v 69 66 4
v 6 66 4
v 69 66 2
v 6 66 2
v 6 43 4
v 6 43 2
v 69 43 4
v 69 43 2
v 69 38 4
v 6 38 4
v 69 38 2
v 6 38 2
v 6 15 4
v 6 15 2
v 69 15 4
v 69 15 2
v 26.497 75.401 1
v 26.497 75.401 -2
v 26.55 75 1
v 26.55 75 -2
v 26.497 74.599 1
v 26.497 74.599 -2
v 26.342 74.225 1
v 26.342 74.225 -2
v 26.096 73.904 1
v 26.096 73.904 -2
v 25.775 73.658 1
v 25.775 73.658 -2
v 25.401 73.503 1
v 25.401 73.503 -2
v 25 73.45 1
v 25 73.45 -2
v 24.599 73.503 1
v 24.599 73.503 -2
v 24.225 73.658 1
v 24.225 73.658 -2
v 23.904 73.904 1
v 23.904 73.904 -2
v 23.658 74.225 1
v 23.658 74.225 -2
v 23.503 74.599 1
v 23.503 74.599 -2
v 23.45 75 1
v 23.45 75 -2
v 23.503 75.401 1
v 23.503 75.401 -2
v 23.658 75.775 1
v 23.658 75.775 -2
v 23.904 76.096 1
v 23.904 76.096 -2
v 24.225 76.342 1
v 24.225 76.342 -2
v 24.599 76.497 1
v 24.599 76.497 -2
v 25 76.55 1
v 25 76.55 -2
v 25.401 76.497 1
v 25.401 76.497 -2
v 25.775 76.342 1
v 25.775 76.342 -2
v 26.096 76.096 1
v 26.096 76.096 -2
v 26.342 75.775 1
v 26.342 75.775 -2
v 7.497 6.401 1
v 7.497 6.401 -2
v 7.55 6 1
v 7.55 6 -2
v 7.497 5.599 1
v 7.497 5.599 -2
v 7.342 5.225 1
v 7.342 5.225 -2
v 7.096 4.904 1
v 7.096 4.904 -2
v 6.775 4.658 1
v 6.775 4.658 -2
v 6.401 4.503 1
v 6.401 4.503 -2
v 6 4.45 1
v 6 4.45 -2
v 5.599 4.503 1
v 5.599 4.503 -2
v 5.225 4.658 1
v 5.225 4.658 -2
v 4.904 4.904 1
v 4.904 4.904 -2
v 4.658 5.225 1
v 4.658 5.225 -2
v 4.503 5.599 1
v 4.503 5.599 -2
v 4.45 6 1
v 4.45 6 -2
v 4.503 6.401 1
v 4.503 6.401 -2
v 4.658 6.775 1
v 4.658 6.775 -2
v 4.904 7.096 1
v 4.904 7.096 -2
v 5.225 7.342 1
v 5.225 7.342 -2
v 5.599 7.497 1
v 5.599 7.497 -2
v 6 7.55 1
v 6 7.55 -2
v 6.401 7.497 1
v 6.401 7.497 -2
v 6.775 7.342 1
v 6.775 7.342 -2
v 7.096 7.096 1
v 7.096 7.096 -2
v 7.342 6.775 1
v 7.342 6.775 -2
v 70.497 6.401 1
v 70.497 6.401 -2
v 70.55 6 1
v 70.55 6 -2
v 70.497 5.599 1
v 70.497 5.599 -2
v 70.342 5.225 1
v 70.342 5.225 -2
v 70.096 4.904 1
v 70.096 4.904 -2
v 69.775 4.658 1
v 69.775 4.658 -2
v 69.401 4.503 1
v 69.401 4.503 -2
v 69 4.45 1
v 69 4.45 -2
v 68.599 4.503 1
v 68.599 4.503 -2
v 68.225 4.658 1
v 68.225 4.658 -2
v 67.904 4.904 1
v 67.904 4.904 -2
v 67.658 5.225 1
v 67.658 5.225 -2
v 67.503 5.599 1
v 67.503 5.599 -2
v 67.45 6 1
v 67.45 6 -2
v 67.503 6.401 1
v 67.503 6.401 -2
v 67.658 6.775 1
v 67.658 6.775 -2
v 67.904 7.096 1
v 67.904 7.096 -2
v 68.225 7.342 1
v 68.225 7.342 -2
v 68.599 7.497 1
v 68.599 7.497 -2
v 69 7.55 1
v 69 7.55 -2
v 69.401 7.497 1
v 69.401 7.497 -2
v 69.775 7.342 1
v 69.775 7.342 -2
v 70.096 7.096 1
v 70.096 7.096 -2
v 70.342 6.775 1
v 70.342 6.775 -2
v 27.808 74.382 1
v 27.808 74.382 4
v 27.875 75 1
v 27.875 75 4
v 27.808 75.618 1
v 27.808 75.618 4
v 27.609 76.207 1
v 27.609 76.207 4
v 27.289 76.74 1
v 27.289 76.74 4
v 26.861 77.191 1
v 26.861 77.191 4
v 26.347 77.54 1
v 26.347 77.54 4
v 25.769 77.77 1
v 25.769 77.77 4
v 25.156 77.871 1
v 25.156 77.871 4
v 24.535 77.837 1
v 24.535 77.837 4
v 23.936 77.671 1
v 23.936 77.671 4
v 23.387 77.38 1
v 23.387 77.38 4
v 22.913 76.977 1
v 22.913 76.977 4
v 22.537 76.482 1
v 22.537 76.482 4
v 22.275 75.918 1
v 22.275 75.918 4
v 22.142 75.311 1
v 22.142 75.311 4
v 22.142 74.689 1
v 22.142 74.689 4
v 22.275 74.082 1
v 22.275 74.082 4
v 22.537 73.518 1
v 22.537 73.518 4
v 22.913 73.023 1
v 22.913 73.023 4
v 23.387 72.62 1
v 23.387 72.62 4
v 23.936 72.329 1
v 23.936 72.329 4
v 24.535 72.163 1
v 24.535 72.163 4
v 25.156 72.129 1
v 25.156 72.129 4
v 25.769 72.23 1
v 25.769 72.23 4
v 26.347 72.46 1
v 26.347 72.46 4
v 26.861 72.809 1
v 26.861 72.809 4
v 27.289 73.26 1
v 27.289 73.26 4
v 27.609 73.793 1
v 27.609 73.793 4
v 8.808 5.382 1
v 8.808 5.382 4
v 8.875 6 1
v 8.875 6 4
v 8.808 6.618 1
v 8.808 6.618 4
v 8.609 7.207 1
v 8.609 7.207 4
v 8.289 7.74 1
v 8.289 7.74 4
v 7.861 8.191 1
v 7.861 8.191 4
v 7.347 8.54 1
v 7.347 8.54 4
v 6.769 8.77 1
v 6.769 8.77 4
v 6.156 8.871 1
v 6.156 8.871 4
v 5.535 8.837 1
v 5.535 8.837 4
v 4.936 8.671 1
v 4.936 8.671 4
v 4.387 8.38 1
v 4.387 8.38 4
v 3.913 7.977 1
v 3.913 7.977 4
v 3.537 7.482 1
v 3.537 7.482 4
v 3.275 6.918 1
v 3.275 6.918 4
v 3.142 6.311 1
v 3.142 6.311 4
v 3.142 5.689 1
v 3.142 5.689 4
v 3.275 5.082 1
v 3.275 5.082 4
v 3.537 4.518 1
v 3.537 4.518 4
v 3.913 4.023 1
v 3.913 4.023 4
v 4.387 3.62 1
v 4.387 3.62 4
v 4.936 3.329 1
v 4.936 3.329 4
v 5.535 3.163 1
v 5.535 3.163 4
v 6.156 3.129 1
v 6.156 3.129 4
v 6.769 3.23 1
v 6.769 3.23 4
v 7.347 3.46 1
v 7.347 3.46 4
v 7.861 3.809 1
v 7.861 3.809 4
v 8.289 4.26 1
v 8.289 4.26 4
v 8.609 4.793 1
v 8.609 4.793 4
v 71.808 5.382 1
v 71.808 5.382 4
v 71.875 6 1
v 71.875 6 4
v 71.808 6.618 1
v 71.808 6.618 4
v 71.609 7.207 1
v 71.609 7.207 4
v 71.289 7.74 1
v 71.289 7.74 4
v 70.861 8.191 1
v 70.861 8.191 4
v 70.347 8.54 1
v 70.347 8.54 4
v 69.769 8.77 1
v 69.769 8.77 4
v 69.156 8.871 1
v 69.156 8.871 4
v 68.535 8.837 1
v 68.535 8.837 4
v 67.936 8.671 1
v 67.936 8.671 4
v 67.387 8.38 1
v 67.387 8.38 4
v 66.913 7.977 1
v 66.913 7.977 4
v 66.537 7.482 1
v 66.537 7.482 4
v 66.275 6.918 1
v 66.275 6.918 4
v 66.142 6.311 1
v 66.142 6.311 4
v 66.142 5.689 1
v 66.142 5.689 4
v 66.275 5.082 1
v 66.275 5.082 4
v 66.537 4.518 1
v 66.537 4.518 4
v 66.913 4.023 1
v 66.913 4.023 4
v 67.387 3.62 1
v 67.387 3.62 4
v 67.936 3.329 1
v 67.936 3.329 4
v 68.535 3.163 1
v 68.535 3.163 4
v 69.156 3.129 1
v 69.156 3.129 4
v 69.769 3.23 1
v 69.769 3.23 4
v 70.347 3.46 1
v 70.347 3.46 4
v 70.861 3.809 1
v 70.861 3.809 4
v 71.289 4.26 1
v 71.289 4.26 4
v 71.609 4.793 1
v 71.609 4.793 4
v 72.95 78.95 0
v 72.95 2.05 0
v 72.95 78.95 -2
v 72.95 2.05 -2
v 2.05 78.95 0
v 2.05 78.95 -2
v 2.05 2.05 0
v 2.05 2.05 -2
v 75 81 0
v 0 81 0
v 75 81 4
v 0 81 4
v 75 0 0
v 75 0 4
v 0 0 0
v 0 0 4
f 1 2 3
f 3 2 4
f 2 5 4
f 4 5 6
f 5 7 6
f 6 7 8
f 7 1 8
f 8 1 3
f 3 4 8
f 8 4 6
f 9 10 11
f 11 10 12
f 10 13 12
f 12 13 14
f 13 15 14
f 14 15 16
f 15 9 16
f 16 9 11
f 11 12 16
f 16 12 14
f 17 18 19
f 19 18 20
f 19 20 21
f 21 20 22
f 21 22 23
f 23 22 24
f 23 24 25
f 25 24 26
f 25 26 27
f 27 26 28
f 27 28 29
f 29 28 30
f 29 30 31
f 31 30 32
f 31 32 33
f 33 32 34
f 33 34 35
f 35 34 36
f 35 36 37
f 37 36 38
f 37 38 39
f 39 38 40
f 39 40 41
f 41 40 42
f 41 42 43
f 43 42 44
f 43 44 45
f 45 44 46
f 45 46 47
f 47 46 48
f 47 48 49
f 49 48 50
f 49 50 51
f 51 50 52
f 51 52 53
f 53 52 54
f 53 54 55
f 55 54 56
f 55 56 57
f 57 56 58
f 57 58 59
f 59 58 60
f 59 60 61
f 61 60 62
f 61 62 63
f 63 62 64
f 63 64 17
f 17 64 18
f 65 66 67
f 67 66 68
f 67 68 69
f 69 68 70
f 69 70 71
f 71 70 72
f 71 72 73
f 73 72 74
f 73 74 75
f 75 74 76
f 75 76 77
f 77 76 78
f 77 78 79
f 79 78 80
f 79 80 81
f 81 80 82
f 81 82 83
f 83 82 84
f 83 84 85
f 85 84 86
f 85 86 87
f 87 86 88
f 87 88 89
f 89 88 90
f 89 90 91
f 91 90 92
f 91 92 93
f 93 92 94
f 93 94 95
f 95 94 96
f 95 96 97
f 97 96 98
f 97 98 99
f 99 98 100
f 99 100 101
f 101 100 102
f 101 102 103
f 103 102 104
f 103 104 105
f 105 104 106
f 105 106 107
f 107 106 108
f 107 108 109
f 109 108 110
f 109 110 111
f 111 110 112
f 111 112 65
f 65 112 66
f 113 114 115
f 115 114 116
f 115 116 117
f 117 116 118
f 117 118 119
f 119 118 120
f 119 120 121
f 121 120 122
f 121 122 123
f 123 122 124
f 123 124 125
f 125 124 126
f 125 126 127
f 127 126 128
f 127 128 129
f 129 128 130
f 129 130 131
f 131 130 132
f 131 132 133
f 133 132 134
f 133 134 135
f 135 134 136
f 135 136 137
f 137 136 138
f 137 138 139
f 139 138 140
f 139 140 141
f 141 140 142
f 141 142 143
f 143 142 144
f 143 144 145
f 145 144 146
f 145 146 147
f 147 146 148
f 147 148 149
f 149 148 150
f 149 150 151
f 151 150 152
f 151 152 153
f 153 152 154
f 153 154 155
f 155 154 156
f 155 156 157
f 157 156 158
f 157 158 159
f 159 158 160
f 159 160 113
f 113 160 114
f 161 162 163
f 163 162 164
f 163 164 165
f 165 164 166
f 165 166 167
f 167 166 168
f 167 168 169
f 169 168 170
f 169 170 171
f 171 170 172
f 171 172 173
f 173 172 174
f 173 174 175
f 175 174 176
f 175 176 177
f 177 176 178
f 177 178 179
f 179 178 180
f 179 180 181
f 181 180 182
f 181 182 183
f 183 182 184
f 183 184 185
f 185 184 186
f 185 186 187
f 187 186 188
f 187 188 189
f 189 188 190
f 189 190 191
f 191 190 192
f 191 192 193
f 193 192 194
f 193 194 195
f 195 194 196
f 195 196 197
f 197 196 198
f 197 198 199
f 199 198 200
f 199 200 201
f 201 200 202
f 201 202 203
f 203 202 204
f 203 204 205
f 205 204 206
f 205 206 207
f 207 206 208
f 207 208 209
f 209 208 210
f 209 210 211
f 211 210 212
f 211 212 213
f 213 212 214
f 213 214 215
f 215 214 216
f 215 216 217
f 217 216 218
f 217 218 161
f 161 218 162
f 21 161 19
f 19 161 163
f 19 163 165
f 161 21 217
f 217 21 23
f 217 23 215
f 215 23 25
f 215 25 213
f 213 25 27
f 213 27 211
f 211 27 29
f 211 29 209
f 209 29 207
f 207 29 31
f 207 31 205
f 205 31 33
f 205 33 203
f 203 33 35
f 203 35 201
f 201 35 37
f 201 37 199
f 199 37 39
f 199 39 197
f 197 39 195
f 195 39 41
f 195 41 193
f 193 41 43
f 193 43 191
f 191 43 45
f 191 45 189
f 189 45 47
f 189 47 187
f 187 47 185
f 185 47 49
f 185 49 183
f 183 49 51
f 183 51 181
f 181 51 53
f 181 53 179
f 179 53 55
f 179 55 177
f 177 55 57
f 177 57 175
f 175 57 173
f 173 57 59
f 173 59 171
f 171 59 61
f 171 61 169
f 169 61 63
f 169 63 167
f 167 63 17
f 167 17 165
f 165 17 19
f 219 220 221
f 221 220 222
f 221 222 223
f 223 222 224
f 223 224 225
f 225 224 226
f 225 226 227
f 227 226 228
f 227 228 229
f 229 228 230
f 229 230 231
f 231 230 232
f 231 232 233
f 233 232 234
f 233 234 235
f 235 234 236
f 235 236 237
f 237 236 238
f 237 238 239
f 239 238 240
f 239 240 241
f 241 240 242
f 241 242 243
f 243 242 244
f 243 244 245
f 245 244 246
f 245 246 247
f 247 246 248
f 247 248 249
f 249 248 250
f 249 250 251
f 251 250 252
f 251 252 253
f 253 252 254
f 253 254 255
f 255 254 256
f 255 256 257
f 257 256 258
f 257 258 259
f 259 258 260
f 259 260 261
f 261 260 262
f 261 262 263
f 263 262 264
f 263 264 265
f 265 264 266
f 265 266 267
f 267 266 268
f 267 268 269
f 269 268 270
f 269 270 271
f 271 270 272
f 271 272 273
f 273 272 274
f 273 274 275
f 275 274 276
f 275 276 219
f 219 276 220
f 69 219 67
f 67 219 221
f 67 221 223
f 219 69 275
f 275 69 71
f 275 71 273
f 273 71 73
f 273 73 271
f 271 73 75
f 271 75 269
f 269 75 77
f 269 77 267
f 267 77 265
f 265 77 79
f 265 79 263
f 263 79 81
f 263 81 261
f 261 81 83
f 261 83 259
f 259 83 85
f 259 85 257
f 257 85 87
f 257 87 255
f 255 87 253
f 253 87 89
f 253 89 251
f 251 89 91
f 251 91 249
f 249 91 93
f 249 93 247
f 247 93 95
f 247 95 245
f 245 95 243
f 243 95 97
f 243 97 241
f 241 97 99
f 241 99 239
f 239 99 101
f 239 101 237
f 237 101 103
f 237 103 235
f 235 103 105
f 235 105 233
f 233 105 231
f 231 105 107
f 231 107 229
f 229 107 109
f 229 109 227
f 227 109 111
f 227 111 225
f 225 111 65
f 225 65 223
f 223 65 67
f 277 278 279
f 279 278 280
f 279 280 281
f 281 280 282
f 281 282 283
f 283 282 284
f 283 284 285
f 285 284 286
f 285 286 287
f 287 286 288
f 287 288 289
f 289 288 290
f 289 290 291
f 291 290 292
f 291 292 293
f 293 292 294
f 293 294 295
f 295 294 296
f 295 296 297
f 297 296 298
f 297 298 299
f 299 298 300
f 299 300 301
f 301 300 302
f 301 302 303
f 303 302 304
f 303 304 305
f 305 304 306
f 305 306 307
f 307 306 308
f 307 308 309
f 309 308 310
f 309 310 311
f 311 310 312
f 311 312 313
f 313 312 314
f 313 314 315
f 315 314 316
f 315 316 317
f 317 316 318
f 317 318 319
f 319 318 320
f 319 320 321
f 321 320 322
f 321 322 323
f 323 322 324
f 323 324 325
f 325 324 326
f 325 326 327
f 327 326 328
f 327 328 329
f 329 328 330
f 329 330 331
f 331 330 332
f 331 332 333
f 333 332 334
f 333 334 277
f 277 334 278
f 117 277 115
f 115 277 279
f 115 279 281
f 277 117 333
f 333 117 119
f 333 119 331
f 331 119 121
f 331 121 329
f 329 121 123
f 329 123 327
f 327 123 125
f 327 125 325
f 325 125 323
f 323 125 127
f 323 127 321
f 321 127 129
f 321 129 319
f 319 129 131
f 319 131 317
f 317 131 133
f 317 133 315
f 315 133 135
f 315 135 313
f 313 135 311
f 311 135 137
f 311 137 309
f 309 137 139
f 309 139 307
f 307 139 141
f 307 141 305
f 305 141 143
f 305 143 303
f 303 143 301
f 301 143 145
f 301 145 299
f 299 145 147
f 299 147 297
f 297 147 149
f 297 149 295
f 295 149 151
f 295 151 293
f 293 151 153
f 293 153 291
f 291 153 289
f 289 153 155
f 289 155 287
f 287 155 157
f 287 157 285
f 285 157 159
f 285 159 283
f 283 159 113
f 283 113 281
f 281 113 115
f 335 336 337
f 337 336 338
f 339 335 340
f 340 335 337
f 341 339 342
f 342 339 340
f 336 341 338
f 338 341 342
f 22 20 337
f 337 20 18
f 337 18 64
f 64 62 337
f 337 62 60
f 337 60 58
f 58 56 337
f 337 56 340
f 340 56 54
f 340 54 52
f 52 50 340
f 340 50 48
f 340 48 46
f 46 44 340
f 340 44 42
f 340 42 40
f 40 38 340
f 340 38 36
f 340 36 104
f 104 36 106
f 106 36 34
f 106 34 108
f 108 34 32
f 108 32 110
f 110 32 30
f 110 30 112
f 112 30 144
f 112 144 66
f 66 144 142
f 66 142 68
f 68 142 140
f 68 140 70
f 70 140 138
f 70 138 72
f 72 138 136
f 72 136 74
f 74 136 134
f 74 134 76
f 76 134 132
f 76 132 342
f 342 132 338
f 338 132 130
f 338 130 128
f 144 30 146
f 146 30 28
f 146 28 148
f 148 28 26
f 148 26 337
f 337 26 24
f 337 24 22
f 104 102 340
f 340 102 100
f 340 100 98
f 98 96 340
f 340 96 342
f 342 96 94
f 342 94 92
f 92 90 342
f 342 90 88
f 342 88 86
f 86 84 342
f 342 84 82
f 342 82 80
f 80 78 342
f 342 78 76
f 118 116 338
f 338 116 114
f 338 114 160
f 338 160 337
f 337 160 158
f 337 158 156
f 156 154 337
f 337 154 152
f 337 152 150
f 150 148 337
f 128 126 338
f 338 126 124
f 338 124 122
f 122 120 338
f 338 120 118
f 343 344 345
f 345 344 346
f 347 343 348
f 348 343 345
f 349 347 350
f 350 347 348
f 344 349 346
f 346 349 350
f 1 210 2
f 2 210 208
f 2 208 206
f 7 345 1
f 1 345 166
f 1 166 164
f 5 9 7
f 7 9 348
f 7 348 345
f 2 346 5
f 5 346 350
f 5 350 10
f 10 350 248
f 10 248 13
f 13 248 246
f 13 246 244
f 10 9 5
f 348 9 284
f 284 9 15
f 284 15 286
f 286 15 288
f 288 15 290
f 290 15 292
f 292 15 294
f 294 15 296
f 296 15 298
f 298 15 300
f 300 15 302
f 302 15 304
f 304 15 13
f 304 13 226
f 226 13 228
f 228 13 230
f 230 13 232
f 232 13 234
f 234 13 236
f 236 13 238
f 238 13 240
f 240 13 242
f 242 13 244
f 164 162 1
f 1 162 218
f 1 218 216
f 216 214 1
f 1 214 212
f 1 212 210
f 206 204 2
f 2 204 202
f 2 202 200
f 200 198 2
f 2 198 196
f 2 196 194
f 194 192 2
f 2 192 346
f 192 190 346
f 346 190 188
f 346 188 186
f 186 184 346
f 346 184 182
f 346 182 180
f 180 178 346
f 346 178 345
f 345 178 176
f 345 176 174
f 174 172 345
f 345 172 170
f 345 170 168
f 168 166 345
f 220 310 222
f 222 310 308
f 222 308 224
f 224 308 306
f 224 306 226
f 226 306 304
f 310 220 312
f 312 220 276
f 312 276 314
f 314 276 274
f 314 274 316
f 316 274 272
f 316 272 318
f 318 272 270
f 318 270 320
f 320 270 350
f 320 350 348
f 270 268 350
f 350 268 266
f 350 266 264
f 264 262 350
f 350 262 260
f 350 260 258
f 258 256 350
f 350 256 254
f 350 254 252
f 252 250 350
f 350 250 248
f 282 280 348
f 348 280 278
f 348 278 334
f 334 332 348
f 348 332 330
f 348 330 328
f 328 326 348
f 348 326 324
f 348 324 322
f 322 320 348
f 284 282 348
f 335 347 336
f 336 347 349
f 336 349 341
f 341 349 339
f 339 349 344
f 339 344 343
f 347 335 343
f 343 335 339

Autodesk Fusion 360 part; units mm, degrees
sketch "Sketch1" plane through (0, 0, 0) normal (0, 0, 1) x (1, 0, 0)
  line L0 (0, 0) -> (75, 0)
  line L1 (75, 0) -> (75, 81)
  line L2 (75, 81) -> (0, 81)
  line L3 (0, 81) -> (0, 0)
  dimension "d1" = 81
  dimension "d2" = 75
extrude "Extrude1" add sketch "Sketch1" along normal blind 4
sketch "Sketch2" plane through (0, 0, 0) normal (0, 0, -1) x (1, 0, 0)
  line L0 (0, 0) -> (0, -81)
  line L1 (0, -81) -> (75, -81)
  line L2 (75, -81) -> (75, 0)
  line L3 (75, 0) -> (0, 0)
  line L4 (72.95, -78.95) -> (2.05, -78.95)
  line L5 (2.05, -78.95) -> (2.05, -2.05)
  line L6 (2.05, -2.05) -> (72.95, -2.05)
  line L7 (72.95, -2.05) -> (72.95, -78.95)
  dimension "d6" = 2.05
  dimension "d7" = 2.05
  dimension "d8" = 2.05
  dimension "d9" = 2.05
extrude "Extrude2" add sketch "Sketch2" along normal blind 2 contours L4 L5 L6 L7
sketch "Sketch3" plane through (0, 0, 4) normal (0, 0, 1) x (-1, 0, 0)
  line L0 (0, -81) -> (0, 0)
  line L1 (0, 0) -> (-75, 0)
  line L2 (-75, 0) -> (-75, -81)
  line L3 (-75, -81) -> (0, -81)
  circle A0 centre (-6, -6) radius 2.875
  circle A1 centre (-69, -6) radius 2.875
  circle A2 centre (-25, -75) radius 2.875
  dimension "d12" = 25
  dimension "d13" = 5.75
  dimension "d14" = 6
  dimension "d15" = 6
  dimension "d16" = 6
  dimension "d17" = 6
  dimension "d18" = 6
  dimension "d19" = 5.75
  dimension "d20" = 5.75
extrude "Extrude3" cut sketch "Sketch3" against normal blind 3 contours A0 | A1 | A2
sketch "Sketch4" plane through (0, 0, 4) normal (0, 0, 1) x (-1, 0, 0)
  circle A0 centre (-25, -75) radius 2.875
  circle A1 centre (-6, -6) radius 2.875
  circle A2 centre (-69, -6) radius 2.875
  line L0 (0, -81) -> (0, 0)
  line L1 (0, 0) -> (-75, 0)
  line L2 (-75, 0) -> (-75, -81)
  line L3 (-75, -81) -> (0, -81)
  circle A3 centre (-6, -6) radius 1.55
  circle A4 centre (-69, -6) radius 1.55
  circle A5 centre (-25, -75) radius 1.55
  dimension "d23" = 3.1
  dimension "d24" = 3.1
  dimension "d25" = 3.1
extrude "Extrude4" cut sketch "Sketch4" against normal blind 16 contours A3 | A4 | A5
sketch "Sketch5" plane through (0, 0, 4) normal (0, 0, 1) x (-1, 0, 0)
  circle A0 centre (-25, -75) radius 2.875
  circle A1 centre (-6, -6) radius 2.875
  circle A2 centre (-69, -6) radius 2.875
  line L0 (0, -81) -> (0, 0)
  line L1 (0, 0) -> (-75, 0)
  line L2 (-75, 0) -> (-75, -81)
  line L3 (-75, -81) -> (0, -81)
  line L4 (-69, -66) -> (-6, -66)
  line L5 (-6, -66) -> (-6, -43)
  line L6 (-6, -43) -> (-69, -43)
  line L7 (-69, -43) -> (-69, -66)
  line L8 (-69, -38) -> (-6, -38)
  line L9 (-6, -38) -> (-6, -15)
  line L10 (-6, -15) -> (-69, -15)
  line L11 (-69, -15) -> (-69, -38)
  dimension "d28" = 23
  dimension "d29" = 15
  dimension "d30" = 23
  dimension "d31" = 15
  dimension "d32" = 6
  dimension "d33" = 6
  dimension "d34" = 6
  dimension "d35" = 6
extrude "Extrude5" cut sketch "Sketch5" against normal blind 2 contours L4 L5 L6 L7 | L8 L9 L10 L11
